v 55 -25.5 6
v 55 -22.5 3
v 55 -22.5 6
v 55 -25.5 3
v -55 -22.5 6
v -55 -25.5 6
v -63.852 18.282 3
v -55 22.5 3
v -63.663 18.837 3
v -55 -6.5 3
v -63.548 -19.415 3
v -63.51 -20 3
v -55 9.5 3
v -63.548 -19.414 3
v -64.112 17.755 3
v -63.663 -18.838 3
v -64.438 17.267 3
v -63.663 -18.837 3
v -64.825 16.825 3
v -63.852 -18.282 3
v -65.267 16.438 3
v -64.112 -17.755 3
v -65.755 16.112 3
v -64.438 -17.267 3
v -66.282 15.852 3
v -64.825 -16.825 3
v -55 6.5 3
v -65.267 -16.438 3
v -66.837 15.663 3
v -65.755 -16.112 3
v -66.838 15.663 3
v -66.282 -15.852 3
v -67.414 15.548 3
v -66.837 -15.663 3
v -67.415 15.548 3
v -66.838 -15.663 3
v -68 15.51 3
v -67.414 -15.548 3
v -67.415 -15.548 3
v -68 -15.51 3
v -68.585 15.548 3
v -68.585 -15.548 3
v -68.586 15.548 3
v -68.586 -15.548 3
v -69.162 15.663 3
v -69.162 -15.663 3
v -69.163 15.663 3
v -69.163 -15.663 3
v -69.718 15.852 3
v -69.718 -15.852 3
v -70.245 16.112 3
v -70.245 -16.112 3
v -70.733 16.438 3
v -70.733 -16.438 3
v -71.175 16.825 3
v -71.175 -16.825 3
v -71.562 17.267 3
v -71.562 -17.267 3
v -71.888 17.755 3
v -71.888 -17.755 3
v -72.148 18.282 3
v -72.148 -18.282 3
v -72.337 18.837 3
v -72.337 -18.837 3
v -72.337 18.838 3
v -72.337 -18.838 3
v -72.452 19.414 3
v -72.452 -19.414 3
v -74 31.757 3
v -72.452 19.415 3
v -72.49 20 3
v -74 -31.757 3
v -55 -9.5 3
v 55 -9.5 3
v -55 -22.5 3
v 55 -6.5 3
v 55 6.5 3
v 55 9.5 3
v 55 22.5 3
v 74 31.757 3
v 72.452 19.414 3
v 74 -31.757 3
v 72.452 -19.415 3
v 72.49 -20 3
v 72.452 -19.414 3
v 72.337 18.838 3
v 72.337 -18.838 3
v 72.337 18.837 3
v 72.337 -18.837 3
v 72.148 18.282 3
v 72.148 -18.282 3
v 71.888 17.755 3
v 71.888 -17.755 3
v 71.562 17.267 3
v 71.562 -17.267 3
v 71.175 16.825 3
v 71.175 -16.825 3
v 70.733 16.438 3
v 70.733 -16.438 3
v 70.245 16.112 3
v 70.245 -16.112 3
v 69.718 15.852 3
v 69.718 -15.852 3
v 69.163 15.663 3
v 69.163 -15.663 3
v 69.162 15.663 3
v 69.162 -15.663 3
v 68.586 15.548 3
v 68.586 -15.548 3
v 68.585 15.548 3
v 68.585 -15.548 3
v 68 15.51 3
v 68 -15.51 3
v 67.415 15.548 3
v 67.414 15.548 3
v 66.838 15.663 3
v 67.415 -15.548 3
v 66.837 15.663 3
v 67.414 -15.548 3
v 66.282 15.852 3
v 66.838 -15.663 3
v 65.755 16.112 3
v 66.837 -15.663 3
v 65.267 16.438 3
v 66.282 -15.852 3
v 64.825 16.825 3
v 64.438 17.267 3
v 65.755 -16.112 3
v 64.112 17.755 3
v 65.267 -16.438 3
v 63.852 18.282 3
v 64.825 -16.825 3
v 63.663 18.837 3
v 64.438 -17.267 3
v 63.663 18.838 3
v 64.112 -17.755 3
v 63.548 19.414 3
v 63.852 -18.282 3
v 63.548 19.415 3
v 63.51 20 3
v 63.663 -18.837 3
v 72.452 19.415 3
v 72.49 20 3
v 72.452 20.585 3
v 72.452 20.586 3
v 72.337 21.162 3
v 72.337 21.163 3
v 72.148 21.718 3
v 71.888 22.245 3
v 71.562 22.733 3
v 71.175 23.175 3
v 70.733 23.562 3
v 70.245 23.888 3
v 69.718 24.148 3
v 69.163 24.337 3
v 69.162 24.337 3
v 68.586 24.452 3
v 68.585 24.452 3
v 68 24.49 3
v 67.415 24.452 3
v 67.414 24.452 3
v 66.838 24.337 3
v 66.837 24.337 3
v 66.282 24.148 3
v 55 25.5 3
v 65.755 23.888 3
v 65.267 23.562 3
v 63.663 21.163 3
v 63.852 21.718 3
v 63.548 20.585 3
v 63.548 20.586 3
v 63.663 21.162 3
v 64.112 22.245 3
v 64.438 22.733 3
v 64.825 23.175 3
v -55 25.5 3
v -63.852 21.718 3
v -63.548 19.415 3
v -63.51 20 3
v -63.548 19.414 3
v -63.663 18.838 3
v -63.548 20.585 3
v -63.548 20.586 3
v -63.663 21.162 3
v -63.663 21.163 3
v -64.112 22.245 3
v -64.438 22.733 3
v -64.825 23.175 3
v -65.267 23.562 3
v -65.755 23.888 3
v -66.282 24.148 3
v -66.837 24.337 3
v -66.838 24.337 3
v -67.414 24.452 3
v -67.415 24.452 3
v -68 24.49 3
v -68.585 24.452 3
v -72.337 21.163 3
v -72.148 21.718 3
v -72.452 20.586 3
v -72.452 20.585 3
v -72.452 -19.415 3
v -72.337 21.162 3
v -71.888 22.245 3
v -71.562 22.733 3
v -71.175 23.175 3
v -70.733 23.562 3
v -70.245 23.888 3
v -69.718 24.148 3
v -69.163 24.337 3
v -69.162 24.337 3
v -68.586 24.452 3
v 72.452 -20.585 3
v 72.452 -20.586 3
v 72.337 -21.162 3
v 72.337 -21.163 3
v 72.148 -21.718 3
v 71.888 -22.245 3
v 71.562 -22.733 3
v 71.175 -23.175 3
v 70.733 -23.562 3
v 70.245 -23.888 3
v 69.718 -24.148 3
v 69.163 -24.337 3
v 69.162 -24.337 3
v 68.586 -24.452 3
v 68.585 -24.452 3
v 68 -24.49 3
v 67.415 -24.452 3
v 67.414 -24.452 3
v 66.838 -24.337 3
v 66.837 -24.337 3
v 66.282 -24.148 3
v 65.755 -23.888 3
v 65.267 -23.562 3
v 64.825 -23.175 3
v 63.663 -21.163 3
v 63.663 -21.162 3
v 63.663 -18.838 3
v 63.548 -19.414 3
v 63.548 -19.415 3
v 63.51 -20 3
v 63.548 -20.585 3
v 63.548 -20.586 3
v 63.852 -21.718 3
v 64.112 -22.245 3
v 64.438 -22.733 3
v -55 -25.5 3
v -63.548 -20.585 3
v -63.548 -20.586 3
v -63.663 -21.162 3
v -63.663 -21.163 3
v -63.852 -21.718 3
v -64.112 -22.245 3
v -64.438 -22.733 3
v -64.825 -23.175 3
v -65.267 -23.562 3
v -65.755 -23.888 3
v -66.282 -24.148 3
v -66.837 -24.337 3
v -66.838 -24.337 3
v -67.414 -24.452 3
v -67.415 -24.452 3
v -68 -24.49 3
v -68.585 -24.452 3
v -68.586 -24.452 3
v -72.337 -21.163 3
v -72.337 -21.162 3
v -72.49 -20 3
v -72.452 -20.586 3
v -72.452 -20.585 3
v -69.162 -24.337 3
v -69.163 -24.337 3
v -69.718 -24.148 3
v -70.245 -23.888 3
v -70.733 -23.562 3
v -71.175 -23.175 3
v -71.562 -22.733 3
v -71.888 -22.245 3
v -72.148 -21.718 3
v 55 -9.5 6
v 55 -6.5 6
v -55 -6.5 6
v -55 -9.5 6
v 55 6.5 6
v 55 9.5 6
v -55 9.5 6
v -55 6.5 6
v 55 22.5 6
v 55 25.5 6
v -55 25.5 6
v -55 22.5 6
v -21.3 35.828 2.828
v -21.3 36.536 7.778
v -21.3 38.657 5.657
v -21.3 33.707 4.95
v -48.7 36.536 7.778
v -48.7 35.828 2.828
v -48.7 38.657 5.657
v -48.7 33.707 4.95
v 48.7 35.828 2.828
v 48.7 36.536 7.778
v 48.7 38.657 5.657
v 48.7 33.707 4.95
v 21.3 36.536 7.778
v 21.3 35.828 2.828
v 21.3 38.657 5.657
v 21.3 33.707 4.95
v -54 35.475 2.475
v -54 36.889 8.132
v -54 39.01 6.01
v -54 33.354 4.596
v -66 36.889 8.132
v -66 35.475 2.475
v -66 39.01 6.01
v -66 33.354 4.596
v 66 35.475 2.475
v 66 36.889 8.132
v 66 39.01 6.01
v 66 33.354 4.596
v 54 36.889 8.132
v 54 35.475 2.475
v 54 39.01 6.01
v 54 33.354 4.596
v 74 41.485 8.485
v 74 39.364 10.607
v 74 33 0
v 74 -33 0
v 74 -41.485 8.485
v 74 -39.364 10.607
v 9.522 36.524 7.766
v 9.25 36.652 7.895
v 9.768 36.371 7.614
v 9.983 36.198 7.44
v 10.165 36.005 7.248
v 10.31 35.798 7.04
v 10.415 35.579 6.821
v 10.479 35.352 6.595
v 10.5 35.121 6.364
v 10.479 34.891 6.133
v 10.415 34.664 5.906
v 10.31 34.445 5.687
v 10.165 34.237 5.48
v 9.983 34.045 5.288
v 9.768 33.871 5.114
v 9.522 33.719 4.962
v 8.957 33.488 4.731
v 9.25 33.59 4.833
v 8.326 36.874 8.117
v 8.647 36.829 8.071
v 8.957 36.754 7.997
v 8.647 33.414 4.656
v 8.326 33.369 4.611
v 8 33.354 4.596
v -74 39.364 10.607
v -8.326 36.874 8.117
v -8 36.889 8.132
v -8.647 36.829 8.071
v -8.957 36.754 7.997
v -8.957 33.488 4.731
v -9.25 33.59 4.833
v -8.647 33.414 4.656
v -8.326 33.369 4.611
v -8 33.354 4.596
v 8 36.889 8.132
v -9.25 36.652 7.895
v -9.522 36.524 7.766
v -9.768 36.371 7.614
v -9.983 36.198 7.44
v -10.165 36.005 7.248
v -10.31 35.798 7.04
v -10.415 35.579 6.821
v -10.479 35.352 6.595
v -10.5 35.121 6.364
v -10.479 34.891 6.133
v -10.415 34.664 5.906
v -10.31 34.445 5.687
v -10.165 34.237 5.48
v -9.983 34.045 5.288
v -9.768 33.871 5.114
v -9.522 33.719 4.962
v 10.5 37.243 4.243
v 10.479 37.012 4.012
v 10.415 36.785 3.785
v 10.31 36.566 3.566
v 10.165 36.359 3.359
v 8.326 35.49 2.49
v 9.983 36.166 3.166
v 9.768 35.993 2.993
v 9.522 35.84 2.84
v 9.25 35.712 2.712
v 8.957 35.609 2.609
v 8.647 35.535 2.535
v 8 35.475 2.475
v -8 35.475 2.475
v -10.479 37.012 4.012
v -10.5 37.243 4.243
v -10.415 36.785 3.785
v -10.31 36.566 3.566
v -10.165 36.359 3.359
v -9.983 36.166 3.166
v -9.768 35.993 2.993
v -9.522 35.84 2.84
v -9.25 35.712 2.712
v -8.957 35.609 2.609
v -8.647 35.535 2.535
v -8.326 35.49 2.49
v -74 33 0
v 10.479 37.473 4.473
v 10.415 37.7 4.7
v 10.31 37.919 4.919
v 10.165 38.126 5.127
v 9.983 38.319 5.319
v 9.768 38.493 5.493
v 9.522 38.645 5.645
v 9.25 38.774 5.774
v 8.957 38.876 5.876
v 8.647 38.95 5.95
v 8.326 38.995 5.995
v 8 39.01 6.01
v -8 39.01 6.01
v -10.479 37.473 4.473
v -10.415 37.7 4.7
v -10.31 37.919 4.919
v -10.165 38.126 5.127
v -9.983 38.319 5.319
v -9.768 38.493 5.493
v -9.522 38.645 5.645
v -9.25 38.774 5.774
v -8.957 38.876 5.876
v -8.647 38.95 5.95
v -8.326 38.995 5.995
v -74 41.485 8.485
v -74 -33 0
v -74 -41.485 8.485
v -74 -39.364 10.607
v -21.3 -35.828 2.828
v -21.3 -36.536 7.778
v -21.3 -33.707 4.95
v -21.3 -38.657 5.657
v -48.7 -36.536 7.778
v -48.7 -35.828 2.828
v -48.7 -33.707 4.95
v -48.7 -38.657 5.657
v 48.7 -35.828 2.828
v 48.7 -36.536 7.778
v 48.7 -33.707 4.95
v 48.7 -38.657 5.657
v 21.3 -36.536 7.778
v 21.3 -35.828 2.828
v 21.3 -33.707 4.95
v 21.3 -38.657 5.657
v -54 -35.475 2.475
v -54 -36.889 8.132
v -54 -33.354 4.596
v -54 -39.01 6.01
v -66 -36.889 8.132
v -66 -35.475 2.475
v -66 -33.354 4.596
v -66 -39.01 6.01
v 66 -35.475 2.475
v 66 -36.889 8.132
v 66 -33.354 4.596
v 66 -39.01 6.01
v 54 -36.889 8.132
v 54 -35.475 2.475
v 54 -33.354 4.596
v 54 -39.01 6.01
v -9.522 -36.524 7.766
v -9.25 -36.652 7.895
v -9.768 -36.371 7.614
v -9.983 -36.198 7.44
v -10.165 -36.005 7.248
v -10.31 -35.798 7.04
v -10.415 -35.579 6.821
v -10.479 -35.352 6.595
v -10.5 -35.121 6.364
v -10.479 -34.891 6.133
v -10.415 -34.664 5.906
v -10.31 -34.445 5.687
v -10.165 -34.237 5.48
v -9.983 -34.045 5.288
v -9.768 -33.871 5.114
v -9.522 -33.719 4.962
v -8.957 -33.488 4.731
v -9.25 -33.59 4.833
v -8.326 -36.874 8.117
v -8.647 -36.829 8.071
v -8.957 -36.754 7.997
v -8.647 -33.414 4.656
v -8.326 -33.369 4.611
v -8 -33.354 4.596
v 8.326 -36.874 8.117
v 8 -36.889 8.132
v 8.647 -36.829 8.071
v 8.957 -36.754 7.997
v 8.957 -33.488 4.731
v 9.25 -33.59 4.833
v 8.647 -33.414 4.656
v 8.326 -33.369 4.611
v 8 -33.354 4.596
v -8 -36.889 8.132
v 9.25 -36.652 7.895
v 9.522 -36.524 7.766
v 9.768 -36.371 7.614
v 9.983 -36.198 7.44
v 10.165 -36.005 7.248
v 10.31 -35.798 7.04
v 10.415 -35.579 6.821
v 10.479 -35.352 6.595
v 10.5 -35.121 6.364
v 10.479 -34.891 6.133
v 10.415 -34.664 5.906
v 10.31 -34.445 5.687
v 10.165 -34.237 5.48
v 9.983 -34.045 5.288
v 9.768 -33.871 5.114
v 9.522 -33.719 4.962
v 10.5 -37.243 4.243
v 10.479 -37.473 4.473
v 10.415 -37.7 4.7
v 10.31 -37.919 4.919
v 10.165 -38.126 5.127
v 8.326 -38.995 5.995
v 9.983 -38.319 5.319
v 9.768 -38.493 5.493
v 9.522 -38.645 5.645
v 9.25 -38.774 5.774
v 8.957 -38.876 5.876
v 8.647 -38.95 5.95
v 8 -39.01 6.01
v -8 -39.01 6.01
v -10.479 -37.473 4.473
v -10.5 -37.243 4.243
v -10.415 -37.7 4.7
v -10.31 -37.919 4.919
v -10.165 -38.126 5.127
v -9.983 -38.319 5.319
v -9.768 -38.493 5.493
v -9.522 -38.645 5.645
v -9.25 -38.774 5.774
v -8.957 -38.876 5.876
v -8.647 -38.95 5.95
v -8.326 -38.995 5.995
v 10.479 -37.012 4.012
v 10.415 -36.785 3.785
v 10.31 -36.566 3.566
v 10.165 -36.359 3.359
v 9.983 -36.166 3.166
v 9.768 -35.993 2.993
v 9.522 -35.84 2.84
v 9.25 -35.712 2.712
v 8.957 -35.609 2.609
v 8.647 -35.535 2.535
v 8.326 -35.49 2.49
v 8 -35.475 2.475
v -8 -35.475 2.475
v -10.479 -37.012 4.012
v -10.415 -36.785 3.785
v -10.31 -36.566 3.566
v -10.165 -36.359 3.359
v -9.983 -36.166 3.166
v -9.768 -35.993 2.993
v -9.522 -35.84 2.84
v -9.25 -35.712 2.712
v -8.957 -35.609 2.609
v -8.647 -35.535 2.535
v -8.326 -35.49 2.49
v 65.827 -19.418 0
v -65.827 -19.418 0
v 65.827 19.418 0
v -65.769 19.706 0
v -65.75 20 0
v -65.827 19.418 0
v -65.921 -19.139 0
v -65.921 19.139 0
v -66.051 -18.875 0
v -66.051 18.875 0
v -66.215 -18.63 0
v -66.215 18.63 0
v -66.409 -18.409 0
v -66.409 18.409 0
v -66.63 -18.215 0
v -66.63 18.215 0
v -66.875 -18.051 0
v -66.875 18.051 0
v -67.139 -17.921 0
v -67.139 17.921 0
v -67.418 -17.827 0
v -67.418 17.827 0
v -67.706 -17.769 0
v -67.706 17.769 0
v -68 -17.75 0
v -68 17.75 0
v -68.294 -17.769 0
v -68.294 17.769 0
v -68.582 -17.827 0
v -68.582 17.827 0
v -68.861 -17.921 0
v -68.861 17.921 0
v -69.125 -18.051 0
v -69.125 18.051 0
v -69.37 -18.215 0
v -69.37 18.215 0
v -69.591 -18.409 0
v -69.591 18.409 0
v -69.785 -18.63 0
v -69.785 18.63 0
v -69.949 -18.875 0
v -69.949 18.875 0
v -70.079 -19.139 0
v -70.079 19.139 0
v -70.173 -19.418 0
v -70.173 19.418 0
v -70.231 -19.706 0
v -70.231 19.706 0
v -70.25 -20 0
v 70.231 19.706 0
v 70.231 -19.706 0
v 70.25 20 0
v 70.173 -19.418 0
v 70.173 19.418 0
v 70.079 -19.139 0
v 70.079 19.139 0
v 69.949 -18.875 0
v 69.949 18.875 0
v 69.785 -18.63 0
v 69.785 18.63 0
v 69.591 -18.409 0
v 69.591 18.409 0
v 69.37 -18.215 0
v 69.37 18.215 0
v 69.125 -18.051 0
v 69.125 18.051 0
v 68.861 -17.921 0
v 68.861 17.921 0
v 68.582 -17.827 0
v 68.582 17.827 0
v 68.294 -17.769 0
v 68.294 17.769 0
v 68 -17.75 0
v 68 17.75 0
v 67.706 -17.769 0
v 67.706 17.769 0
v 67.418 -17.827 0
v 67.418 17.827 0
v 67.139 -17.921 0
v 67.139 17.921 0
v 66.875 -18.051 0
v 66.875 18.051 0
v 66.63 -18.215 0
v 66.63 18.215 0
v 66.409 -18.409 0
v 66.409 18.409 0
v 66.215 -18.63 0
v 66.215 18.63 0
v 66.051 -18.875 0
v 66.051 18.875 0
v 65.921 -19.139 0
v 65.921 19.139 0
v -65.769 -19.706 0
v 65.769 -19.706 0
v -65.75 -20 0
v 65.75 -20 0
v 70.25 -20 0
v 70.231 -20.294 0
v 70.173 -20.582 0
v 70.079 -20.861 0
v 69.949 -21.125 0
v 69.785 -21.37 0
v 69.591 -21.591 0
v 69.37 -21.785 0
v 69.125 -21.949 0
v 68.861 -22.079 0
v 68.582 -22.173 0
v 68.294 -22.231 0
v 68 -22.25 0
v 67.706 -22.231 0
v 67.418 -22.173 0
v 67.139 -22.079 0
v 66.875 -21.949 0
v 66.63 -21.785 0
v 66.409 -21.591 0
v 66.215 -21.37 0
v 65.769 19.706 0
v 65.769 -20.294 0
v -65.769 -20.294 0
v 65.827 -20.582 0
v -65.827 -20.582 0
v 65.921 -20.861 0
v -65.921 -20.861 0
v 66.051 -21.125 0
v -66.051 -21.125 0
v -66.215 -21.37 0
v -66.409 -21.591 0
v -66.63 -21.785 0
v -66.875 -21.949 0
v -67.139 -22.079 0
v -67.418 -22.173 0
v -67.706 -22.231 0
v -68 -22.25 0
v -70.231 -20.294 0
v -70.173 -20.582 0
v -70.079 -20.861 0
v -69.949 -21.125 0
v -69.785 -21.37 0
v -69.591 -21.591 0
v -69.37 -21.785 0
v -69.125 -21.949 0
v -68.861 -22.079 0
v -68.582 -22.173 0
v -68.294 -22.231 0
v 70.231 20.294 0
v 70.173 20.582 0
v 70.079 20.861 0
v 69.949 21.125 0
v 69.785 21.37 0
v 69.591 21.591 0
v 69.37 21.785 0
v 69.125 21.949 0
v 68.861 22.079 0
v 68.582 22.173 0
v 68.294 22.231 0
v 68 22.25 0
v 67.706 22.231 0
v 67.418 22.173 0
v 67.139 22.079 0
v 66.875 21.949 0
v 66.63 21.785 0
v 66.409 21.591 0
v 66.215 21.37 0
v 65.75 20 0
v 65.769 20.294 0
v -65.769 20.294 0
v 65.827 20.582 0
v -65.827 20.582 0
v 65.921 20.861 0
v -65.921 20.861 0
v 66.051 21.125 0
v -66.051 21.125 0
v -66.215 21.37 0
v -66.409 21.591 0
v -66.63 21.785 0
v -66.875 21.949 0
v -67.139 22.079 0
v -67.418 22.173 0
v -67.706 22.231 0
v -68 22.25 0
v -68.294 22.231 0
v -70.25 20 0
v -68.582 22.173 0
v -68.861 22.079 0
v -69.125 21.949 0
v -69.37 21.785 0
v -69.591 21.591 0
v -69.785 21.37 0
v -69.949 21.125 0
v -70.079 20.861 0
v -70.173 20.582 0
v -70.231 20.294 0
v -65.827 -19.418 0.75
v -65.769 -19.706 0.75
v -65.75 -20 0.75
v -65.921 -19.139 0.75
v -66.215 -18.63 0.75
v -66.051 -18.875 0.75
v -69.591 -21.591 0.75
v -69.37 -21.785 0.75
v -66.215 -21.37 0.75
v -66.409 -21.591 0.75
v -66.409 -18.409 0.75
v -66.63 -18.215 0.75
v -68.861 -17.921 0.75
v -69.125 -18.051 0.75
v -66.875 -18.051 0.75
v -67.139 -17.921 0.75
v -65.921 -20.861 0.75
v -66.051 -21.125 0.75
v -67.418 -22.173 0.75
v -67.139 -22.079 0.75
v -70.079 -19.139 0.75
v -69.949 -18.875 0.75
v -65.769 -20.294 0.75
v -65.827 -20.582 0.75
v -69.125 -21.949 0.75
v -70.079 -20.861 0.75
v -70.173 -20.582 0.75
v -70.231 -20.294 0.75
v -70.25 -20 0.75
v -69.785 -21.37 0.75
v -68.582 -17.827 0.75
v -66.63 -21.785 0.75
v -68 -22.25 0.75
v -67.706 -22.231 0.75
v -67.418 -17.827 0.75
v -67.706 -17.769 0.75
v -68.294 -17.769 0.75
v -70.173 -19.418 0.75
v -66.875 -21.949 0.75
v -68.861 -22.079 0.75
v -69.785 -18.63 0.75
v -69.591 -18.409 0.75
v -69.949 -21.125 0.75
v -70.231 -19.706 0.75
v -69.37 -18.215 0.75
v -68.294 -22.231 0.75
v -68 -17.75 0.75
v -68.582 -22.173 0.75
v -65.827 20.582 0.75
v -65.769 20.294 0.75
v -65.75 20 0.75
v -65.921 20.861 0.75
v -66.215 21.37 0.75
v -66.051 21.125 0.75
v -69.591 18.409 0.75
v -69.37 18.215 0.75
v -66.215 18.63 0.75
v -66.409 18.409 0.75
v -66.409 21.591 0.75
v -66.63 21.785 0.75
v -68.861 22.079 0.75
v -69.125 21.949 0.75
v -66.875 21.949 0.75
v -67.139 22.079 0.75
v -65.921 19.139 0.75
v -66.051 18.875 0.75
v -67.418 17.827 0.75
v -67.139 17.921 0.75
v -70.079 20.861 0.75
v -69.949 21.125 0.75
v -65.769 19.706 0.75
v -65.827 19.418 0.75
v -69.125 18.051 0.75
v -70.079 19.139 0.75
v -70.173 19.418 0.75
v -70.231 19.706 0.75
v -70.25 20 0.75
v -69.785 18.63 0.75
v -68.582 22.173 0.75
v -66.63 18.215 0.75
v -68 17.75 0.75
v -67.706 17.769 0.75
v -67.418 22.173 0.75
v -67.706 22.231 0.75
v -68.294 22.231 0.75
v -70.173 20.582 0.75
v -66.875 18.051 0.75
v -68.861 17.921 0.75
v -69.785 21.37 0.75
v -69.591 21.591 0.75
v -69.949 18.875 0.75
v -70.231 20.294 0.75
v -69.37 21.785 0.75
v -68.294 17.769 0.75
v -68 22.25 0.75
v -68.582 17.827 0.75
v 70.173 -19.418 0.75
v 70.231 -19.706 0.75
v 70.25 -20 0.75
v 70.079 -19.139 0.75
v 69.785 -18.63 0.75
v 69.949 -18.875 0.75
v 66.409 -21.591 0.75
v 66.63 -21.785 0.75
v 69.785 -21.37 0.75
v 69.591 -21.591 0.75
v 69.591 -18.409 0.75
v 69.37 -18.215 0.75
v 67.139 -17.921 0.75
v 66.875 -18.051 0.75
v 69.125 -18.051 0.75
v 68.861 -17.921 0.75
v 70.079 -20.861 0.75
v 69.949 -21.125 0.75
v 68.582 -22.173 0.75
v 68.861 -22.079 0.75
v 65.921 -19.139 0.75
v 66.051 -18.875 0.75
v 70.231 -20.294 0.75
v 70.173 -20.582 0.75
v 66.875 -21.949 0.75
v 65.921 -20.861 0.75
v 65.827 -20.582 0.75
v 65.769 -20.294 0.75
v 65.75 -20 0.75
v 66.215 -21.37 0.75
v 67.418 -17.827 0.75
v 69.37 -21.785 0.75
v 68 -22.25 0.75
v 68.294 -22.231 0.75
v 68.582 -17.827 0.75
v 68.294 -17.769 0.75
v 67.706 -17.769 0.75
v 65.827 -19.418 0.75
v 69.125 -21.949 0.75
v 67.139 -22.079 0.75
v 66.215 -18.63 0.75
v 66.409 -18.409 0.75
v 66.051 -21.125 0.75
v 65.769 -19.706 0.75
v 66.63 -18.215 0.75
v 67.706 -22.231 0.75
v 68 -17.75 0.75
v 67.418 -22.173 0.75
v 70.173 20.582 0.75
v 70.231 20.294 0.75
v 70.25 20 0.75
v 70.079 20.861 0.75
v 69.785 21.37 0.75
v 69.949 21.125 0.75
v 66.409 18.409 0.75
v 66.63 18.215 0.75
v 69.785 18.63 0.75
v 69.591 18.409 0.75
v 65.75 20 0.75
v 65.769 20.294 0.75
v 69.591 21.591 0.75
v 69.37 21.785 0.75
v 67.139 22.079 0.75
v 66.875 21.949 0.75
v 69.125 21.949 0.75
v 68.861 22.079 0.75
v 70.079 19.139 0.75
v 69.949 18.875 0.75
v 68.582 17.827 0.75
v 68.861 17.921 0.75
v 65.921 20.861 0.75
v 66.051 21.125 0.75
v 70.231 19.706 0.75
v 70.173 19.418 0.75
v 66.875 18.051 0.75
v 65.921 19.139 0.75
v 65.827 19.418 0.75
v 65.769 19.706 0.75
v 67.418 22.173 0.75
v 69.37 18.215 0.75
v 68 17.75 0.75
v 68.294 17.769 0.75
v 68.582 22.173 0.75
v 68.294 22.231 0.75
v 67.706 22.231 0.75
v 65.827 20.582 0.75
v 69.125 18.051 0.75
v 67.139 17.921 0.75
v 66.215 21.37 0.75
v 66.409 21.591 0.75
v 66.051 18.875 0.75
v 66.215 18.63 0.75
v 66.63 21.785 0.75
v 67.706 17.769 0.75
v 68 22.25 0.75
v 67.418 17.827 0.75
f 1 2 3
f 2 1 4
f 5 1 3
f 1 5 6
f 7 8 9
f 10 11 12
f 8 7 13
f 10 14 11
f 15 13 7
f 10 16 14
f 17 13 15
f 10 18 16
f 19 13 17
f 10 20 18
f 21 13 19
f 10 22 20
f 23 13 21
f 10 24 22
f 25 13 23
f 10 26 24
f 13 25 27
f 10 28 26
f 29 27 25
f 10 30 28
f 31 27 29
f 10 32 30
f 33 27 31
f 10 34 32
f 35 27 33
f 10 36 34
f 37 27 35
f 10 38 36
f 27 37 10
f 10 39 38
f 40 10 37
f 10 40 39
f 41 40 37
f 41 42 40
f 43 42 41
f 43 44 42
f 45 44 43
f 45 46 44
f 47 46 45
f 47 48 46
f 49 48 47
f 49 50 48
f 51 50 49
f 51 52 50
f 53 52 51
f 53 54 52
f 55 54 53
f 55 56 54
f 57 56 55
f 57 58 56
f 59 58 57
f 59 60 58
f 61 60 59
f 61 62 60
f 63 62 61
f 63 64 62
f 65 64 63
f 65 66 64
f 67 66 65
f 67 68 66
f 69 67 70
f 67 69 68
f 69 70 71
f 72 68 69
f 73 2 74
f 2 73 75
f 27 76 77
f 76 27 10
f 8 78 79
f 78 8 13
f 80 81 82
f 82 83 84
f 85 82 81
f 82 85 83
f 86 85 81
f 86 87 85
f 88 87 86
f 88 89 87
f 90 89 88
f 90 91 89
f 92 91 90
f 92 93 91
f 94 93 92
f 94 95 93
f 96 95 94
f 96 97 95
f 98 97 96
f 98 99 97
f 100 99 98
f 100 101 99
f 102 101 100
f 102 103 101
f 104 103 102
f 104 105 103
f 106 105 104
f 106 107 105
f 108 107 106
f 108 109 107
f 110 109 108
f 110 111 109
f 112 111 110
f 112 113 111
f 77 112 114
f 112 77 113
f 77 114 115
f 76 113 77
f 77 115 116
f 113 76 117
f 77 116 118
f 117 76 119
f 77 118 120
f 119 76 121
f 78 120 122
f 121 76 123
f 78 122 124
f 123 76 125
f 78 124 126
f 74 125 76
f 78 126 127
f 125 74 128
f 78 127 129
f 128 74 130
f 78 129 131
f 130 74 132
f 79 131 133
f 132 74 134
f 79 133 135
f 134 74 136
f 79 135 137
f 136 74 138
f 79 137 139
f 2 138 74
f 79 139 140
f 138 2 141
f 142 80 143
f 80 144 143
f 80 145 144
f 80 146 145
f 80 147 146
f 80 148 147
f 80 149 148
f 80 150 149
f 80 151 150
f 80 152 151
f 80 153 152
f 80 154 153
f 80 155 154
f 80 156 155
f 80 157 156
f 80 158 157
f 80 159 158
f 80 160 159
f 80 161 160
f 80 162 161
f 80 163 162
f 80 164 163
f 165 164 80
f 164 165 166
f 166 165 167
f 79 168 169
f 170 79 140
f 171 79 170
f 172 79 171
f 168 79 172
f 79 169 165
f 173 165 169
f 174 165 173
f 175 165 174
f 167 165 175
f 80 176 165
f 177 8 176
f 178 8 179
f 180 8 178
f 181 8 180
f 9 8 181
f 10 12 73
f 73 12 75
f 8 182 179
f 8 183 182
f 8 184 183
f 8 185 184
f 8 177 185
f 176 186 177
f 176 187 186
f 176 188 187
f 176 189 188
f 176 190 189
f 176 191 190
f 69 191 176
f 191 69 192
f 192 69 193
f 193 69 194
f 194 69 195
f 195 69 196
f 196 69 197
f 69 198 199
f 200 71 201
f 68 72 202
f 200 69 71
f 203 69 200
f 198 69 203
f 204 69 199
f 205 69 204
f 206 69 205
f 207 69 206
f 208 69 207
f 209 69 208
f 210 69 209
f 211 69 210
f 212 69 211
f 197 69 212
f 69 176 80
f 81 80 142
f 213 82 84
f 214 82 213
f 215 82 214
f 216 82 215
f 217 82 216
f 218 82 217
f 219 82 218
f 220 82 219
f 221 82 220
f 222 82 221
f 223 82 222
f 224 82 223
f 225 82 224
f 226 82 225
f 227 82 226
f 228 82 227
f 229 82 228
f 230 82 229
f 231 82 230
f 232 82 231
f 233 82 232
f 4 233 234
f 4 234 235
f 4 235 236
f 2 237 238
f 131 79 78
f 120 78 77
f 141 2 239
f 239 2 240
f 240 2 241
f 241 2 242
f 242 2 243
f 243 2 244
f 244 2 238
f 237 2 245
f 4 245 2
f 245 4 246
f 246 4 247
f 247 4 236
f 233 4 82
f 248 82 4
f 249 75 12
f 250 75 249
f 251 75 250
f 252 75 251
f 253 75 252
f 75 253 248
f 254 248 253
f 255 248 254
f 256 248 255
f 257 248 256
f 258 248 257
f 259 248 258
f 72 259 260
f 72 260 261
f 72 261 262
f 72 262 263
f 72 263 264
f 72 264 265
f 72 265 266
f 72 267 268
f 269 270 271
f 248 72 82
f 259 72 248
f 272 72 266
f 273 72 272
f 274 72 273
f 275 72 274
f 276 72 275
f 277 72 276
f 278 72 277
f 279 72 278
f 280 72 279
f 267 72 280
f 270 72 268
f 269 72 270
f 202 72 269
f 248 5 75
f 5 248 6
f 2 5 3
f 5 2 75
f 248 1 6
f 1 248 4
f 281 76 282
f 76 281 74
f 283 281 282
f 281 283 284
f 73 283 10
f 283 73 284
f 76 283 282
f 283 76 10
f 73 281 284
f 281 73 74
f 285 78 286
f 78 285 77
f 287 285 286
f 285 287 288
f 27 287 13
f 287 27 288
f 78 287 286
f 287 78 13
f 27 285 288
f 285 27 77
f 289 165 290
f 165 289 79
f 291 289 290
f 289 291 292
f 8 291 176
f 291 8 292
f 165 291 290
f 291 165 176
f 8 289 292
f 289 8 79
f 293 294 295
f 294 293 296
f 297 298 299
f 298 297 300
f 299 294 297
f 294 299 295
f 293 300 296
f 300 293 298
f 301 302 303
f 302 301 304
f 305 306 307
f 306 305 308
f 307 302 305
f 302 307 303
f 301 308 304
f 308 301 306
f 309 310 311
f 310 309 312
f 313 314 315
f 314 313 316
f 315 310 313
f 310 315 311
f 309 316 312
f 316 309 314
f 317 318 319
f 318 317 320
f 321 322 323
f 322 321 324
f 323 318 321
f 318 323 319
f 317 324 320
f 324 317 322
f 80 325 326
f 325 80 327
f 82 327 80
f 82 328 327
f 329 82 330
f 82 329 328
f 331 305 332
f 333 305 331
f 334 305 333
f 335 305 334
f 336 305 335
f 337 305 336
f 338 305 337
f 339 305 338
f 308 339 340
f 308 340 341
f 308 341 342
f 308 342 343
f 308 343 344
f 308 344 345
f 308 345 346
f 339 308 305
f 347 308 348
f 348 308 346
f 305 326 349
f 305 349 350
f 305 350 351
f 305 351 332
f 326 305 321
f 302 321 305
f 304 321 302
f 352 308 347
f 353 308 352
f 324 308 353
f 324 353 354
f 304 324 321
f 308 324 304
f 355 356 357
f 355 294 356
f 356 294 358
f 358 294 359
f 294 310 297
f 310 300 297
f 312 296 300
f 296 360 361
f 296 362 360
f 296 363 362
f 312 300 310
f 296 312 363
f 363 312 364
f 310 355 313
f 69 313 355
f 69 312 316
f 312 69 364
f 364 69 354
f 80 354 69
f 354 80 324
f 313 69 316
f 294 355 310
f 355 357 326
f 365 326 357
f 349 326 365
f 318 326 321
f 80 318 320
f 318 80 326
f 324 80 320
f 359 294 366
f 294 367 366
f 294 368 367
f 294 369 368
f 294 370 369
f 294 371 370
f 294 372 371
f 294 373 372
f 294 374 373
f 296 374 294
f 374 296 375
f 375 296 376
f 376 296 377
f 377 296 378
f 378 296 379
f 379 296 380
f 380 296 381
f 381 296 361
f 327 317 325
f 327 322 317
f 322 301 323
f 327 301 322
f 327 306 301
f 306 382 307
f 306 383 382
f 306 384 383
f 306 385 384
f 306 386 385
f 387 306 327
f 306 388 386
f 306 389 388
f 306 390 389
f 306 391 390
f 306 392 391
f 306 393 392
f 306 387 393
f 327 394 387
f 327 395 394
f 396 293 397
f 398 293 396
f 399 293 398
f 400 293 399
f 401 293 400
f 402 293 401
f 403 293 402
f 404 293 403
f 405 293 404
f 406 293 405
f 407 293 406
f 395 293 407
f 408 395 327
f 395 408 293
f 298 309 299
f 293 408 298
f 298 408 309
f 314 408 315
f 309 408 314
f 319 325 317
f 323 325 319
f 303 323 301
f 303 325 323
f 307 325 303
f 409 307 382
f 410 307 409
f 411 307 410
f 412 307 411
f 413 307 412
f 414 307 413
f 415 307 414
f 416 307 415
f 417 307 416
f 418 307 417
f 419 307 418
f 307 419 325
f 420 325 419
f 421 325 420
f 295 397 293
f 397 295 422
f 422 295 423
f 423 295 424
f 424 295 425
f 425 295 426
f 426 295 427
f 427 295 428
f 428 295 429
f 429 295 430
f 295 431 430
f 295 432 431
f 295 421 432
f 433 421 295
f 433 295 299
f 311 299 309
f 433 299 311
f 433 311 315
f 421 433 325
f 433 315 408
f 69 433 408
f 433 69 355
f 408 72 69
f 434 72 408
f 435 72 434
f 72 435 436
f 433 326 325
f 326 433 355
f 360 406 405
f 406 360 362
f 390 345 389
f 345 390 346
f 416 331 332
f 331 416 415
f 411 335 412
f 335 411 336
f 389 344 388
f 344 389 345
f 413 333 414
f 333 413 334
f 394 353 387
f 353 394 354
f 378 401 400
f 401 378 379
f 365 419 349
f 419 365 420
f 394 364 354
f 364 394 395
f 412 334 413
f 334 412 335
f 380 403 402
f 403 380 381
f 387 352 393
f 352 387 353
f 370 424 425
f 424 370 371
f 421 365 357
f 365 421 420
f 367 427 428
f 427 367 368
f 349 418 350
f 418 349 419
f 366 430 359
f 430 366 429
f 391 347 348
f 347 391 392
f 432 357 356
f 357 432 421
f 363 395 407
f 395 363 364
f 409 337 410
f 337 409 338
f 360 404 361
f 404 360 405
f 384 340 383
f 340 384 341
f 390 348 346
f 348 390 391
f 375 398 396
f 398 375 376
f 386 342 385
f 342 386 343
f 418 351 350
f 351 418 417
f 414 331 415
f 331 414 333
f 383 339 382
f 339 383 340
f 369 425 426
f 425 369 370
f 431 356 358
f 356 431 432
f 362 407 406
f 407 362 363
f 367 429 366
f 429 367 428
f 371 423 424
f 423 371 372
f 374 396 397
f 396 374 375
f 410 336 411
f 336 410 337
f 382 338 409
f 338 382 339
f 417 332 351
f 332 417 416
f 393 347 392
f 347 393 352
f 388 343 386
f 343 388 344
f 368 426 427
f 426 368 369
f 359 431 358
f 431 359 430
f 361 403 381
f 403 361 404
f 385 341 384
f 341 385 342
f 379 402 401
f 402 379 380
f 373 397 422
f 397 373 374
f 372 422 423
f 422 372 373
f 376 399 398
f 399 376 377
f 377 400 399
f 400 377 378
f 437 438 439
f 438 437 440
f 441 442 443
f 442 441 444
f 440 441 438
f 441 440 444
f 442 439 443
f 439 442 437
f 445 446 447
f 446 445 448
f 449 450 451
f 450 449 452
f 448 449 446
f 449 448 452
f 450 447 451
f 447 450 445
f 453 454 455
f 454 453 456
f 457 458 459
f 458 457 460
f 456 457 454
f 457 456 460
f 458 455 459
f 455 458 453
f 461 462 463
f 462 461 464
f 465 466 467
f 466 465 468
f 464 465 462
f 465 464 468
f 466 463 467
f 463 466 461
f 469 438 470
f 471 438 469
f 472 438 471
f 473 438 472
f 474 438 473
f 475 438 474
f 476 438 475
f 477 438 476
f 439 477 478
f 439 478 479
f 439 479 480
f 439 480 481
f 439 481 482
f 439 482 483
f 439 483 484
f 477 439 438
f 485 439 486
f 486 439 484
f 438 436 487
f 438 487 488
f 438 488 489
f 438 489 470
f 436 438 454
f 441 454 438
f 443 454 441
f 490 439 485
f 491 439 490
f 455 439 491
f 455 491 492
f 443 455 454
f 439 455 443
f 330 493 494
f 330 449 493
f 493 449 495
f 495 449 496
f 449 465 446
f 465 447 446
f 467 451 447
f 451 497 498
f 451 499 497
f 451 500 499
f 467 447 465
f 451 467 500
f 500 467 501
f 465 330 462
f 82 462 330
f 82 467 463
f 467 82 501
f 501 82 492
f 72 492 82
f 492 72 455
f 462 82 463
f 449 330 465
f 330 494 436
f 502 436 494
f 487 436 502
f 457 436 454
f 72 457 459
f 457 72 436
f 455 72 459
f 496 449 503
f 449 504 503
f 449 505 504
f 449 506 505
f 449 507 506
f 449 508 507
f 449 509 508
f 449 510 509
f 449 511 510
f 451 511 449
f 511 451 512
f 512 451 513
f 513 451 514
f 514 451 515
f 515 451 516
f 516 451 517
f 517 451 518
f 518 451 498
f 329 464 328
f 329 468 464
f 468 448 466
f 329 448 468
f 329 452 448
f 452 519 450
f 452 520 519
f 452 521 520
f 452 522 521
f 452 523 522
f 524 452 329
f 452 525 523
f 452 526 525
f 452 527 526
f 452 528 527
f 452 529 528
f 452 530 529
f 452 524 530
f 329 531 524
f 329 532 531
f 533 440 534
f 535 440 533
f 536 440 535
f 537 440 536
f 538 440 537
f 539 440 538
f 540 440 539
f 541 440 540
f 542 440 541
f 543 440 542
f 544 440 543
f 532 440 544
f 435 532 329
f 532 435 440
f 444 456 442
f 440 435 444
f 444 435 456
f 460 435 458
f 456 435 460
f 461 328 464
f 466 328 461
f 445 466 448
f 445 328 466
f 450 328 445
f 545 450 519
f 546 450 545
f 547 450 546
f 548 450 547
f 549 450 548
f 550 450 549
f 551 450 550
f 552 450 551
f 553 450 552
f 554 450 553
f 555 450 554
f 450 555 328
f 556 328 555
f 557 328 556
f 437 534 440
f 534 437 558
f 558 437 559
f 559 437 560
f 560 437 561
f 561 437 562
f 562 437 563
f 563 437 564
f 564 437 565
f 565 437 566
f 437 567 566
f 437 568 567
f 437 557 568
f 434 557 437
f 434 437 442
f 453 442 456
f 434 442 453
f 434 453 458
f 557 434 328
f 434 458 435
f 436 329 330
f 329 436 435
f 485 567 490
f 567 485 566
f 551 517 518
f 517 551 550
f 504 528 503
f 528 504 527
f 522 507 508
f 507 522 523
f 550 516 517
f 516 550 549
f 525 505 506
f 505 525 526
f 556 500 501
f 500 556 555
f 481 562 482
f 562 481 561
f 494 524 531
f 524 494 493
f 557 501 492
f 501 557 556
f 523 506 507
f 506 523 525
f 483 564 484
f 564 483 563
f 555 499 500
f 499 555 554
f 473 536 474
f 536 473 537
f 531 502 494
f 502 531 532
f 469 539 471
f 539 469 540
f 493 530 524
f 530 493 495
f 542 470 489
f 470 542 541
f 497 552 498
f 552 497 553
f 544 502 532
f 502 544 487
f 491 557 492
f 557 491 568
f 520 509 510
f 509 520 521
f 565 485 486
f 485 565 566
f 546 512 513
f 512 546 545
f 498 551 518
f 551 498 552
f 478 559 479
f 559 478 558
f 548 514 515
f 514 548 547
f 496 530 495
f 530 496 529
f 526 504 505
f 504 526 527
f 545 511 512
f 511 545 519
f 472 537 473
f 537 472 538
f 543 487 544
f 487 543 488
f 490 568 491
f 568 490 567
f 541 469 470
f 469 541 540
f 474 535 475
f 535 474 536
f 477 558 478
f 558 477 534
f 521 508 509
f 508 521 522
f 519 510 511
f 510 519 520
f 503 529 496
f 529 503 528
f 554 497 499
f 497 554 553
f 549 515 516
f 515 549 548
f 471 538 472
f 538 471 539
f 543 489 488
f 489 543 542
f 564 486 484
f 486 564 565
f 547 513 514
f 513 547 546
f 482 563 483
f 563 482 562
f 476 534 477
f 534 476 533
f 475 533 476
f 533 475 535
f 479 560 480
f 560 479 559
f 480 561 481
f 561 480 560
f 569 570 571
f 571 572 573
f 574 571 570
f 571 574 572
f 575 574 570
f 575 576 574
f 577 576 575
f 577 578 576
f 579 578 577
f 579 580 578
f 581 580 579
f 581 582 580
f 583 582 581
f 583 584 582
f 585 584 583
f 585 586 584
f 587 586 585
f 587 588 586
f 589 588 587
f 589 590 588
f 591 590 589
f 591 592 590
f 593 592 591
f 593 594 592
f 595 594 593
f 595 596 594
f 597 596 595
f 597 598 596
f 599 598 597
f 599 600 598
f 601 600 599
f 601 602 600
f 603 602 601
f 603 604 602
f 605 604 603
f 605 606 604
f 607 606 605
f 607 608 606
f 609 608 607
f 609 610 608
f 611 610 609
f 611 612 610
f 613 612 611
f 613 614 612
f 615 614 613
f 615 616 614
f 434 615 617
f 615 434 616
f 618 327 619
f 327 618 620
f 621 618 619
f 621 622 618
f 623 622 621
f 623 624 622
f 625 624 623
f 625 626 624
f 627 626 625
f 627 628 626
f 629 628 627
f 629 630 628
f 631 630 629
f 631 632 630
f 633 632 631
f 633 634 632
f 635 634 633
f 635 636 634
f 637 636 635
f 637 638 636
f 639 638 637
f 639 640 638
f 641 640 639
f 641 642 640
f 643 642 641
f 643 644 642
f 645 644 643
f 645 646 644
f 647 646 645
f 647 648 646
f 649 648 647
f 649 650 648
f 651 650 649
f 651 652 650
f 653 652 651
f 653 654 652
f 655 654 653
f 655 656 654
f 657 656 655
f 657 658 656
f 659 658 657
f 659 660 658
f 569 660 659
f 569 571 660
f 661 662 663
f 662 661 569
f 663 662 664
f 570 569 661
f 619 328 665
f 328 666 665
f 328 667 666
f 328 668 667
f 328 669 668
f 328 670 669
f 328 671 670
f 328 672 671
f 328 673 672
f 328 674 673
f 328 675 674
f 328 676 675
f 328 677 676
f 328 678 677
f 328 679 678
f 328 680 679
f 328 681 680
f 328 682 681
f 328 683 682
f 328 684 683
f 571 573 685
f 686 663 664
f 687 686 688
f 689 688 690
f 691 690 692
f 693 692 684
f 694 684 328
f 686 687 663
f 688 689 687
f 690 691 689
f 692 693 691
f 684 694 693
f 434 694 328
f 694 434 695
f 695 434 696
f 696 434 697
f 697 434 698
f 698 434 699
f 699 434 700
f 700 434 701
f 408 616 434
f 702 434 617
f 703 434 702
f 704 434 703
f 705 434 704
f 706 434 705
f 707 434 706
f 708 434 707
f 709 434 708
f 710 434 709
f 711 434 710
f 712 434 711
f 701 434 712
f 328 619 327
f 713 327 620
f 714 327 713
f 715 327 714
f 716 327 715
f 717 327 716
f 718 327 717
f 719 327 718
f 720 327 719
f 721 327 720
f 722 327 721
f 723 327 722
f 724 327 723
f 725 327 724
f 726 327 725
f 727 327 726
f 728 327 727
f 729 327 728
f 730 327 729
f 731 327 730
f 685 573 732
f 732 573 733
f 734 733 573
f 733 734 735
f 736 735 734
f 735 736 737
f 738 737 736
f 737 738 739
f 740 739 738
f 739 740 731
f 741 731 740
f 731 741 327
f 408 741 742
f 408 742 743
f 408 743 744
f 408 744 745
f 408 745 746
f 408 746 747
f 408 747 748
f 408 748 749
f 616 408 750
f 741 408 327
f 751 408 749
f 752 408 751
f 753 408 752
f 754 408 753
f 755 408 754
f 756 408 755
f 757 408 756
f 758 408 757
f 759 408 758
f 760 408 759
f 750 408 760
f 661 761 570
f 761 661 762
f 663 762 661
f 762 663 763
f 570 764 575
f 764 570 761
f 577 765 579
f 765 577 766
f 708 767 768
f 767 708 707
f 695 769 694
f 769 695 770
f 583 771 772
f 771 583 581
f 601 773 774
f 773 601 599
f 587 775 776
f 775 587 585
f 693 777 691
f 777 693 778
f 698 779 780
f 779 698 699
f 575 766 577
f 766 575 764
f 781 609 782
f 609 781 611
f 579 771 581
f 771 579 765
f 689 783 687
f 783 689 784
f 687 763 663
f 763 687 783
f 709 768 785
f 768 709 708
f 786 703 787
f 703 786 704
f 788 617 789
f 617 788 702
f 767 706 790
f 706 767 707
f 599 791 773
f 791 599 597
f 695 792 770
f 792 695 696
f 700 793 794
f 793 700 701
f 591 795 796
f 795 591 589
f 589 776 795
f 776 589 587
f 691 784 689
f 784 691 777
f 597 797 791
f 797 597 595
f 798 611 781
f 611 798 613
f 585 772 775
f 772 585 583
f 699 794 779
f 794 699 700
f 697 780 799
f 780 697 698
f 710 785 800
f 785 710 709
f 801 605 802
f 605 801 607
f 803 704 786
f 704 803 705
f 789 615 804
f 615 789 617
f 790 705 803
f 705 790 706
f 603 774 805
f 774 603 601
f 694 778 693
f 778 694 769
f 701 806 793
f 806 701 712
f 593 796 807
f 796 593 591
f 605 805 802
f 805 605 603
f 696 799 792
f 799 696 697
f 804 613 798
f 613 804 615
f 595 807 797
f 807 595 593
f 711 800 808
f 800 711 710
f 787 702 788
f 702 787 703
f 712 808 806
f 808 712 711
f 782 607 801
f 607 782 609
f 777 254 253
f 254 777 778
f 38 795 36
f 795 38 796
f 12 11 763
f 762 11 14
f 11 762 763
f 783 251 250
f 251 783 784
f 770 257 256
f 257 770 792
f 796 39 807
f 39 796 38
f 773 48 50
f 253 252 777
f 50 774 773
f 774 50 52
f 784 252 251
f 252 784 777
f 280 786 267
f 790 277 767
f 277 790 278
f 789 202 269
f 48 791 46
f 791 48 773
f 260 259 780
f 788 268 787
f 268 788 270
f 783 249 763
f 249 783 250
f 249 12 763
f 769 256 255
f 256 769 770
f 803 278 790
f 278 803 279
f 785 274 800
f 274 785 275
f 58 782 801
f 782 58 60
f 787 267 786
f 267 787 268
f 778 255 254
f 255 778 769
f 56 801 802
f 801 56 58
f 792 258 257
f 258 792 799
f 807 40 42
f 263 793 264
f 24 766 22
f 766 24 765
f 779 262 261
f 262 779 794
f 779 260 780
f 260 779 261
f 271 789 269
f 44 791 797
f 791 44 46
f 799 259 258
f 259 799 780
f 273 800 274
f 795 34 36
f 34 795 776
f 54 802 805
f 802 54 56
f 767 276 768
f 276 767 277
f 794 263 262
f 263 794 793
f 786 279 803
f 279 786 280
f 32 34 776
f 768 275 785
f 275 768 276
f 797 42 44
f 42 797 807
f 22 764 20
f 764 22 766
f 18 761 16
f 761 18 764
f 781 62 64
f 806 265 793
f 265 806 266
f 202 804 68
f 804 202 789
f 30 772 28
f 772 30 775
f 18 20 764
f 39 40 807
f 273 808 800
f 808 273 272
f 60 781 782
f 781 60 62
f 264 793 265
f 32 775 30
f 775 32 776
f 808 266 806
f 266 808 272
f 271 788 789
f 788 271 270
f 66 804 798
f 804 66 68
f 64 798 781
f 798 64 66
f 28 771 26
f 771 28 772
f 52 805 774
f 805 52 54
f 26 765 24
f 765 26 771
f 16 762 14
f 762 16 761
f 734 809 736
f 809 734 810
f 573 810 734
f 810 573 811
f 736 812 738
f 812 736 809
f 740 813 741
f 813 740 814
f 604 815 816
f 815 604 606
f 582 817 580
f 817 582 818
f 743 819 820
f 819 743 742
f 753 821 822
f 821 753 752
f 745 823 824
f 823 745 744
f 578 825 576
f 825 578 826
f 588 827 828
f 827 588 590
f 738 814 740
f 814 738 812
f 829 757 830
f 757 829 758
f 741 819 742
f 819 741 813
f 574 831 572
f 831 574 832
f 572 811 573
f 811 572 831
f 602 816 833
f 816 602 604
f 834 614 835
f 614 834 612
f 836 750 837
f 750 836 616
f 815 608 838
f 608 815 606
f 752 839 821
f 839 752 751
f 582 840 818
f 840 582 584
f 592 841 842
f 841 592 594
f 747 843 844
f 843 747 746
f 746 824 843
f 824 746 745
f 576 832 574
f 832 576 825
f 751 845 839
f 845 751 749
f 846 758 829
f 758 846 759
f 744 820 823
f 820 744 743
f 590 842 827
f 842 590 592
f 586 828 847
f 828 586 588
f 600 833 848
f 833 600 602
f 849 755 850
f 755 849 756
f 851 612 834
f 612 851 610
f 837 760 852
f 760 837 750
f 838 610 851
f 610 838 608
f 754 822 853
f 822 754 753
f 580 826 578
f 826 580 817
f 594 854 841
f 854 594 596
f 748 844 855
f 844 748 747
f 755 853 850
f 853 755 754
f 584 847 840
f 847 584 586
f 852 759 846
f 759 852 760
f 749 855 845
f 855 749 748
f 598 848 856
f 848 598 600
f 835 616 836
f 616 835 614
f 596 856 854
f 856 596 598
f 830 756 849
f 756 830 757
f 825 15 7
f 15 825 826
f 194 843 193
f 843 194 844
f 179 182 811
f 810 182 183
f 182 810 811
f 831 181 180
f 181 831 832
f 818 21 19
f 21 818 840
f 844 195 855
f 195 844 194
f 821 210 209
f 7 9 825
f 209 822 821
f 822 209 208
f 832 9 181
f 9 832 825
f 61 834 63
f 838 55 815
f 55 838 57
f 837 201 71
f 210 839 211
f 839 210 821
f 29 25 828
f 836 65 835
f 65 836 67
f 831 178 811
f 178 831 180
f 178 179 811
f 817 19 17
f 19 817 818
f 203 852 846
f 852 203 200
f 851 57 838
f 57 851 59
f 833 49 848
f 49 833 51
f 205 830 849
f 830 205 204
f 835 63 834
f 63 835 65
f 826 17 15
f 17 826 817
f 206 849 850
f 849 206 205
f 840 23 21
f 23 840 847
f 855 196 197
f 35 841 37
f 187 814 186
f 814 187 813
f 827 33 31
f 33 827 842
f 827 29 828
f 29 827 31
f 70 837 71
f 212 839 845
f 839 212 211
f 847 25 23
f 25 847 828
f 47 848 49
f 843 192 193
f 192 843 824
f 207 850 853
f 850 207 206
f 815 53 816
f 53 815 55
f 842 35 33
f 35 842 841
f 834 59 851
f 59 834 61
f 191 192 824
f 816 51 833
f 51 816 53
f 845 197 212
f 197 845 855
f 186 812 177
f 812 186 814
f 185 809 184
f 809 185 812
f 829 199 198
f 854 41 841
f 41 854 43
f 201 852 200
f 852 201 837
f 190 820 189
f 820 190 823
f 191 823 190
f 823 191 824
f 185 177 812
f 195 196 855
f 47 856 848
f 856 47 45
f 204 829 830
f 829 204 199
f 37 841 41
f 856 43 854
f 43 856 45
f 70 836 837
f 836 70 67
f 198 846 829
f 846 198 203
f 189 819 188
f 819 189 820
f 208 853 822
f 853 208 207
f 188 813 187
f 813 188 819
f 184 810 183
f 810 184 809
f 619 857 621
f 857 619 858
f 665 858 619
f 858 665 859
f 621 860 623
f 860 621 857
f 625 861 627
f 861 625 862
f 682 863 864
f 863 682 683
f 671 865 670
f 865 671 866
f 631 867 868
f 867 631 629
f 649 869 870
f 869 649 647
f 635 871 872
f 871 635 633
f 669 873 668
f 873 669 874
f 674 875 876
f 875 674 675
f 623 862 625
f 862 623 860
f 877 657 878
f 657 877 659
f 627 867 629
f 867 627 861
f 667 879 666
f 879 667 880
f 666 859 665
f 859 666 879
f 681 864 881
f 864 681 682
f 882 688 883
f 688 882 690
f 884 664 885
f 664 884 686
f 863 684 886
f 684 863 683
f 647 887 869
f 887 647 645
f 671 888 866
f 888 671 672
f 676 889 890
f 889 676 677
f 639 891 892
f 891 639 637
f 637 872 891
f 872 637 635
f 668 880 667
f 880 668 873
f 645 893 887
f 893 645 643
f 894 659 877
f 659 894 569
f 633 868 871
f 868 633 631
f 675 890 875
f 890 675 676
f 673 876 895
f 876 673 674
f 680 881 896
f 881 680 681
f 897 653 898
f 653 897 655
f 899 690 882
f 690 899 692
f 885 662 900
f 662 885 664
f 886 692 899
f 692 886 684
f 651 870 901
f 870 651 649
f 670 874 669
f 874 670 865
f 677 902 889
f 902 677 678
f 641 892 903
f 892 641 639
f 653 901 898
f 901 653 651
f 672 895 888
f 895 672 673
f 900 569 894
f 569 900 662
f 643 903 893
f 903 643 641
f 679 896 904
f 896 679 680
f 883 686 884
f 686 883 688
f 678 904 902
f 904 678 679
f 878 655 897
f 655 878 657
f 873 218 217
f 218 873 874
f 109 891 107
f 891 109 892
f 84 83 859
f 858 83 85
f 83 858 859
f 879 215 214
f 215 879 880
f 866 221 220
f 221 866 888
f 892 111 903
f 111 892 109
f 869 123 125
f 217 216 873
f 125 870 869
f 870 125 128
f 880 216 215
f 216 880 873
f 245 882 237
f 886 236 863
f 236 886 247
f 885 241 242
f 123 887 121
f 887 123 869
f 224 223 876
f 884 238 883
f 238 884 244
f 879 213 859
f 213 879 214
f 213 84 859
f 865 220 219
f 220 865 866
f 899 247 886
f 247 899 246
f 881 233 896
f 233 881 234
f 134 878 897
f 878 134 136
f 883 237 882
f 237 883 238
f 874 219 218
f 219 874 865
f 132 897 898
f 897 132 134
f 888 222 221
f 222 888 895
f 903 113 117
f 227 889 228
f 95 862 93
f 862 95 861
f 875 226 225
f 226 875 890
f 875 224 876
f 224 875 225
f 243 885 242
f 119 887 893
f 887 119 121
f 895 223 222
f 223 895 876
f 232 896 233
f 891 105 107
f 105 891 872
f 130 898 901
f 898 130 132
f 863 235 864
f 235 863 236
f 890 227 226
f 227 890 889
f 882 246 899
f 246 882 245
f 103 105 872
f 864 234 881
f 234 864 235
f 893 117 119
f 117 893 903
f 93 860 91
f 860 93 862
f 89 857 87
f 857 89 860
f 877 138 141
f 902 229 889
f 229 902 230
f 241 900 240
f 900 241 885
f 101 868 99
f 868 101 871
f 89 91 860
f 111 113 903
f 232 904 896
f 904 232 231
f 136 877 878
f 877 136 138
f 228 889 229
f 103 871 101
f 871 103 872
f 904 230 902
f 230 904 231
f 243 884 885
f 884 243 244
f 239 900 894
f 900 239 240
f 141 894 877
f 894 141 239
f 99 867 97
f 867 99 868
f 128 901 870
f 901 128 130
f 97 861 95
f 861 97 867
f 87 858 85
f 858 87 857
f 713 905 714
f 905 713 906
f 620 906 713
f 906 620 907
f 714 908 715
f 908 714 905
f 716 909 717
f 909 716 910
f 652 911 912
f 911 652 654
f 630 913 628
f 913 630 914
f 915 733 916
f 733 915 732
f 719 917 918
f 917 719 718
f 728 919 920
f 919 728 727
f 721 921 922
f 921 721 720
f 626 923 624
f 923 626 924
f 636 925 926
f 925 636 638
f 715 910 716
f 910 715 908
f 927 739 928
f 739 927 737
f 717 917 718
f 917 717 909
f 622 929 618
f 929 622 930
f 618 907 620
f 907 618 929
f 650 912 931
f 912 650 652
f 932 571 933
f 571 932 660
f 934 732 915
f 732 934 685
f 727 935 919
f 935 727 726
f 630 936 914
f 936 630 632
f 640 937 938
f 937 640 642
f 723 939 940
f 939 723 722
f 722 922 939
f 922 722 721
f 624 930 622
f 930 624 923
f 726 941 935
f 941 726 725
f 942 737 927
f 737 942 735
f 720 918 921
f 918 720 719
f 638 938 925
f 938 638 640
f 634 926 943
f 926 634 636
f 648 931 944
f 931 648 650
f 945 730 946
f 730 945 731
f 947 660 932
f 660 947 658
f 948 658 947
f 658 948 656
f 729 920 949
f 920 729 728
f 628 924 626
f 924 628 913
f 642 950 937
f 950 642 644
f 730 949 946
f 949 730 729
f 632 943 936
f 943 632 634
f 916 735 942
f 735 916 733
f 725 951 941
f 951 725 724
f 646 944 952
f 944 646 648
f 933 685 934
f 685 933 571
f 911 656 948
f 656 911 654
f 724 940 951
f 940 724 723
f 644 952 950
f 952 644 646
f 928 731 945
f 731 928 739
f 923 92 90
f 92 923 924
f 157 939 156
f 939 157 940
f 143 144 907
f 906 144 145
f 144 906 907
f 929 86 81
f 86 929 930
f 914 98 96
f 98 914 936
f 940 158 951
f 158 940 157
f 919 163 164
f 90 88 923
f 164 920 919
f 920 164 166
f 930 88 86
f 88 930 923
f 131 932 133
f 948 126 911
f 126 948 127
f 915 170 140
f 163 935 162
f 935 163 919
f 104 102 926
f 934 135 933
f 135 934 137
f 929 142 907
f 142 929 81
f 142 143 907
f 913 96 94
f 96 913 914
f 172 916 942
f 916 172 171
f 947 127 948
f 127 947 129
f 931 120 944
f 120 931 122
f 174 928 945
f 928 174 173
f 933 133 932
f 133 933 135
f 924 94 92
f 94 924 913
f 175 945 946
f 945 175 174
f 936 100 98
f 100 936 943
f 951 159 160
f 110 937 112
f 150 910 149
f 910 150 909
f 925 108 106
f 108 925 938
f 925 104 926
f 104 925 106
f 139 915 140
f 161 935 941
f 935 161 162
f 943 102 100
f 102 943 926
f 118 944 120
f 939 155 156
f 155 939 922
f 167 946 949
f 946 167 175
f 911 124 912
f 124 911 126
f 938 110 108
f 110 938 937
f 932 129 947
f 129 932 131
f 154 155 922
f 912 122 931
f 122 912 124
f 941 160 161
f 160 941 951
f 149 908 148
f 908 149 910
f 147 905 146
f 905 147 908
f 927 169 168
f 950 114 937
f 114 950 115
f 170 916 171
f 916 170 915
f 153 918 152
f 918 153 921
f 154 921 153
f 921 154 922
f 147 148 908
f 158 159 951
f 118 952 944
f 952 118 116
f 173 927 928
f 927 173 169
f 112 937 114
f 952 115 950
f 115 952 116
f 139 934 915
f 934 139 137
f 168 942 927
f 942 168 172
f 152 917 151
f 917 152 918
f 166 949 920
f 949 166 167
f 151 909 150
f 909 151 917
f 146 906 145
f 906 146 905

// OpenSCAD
// Under-desk bracket for Lenovo Legion Slim 140W charger (122 x 62 x 26.5 mm)
// Prints desk-side down (z = 0 is the desk face), no supports. PETG or ASA.

// ---- Charger / plate ----
brick_l = 122;  brick_w = 62;
side_clr = 2;               // clearance per long side
t = 3;                      // wall / plate thickness
L   = 148;                  // plate length
Wp  = brick_w + 2*side_clr; // flat plate width (66)

// ---- Side lips ----
Ls  = 12;  ang = 45;        // lip width, angle away from desk

// ---- Strap slots (in lips) ----
strap_w = 25.4; strap_clr = 2;   // 1" strap + extra slot length
slot_gap = 4; strap_x = 35;

// ---- Lip vents ----
vent_d = 5;  vent_x = 8;              // center oval: two d=vent_d circles at ±vent_x, hulled
win_x = 60;  win_l = 12;  win_w = 5;  // outer vent windows

// ---- Screw holes (#8 countersunk) ----
screw_d = 4.5; head_d = 9; hole_x = 68; hole_y = 20;

// ---- Cooling ribs ----
rib_h = 3;  rib_w = 3;  rib_len = 110;
rib_y = [-24, -8, 8, 24];

$fn = 48;

module lip() {
  translate([0, Wp/2, 0]) rotate([ang, 0, 0])
  difference() {
    translate([-L/2, 0, 0]) cube([L, Ls, t]);
    for (sx = [-1, 1])
      translate([sx*strap_x, Ls/2, t/2])
        cube([strap_w+strap_clr, slot_gap, t+2], center=true);
    hull() for (sx = [-1, 1])
      translate([sx*vent_x, Ls/2, -1]) cylinder(d=vent_d, h=t+2);
    for (sx = [-1, 1])
      translate([sx*win_x, Ls/2, t/2])
        cube([win_l, win_w, t+2], center=true);
  }
}

difference() {
  union() {
    translate([-L/2, -Wp/2, 0]) cube([L, Wp, t]);
    for (y = rib_y)
      translate([-rib_len/2, y - rib_w/2, t]) cube([rib_len, rib_w, rib_h]);
    lip();
    mirror([0, 1, 0]) lip();
  }
  for (sx = [-1, 1], sy = [-1, 1])
    translate([sx*hole_x, sy*hole_y, 0]) {
      translate([0, 0, -1]) cylinder(d=screw_d, h=t+2);
      translate([0, 0, t - (head_d-screw_d)/2])
        cylinder(d1=screw_d, d2=head_d, h=(head_d-screw_d)/2 + 0.01);
    }
}
